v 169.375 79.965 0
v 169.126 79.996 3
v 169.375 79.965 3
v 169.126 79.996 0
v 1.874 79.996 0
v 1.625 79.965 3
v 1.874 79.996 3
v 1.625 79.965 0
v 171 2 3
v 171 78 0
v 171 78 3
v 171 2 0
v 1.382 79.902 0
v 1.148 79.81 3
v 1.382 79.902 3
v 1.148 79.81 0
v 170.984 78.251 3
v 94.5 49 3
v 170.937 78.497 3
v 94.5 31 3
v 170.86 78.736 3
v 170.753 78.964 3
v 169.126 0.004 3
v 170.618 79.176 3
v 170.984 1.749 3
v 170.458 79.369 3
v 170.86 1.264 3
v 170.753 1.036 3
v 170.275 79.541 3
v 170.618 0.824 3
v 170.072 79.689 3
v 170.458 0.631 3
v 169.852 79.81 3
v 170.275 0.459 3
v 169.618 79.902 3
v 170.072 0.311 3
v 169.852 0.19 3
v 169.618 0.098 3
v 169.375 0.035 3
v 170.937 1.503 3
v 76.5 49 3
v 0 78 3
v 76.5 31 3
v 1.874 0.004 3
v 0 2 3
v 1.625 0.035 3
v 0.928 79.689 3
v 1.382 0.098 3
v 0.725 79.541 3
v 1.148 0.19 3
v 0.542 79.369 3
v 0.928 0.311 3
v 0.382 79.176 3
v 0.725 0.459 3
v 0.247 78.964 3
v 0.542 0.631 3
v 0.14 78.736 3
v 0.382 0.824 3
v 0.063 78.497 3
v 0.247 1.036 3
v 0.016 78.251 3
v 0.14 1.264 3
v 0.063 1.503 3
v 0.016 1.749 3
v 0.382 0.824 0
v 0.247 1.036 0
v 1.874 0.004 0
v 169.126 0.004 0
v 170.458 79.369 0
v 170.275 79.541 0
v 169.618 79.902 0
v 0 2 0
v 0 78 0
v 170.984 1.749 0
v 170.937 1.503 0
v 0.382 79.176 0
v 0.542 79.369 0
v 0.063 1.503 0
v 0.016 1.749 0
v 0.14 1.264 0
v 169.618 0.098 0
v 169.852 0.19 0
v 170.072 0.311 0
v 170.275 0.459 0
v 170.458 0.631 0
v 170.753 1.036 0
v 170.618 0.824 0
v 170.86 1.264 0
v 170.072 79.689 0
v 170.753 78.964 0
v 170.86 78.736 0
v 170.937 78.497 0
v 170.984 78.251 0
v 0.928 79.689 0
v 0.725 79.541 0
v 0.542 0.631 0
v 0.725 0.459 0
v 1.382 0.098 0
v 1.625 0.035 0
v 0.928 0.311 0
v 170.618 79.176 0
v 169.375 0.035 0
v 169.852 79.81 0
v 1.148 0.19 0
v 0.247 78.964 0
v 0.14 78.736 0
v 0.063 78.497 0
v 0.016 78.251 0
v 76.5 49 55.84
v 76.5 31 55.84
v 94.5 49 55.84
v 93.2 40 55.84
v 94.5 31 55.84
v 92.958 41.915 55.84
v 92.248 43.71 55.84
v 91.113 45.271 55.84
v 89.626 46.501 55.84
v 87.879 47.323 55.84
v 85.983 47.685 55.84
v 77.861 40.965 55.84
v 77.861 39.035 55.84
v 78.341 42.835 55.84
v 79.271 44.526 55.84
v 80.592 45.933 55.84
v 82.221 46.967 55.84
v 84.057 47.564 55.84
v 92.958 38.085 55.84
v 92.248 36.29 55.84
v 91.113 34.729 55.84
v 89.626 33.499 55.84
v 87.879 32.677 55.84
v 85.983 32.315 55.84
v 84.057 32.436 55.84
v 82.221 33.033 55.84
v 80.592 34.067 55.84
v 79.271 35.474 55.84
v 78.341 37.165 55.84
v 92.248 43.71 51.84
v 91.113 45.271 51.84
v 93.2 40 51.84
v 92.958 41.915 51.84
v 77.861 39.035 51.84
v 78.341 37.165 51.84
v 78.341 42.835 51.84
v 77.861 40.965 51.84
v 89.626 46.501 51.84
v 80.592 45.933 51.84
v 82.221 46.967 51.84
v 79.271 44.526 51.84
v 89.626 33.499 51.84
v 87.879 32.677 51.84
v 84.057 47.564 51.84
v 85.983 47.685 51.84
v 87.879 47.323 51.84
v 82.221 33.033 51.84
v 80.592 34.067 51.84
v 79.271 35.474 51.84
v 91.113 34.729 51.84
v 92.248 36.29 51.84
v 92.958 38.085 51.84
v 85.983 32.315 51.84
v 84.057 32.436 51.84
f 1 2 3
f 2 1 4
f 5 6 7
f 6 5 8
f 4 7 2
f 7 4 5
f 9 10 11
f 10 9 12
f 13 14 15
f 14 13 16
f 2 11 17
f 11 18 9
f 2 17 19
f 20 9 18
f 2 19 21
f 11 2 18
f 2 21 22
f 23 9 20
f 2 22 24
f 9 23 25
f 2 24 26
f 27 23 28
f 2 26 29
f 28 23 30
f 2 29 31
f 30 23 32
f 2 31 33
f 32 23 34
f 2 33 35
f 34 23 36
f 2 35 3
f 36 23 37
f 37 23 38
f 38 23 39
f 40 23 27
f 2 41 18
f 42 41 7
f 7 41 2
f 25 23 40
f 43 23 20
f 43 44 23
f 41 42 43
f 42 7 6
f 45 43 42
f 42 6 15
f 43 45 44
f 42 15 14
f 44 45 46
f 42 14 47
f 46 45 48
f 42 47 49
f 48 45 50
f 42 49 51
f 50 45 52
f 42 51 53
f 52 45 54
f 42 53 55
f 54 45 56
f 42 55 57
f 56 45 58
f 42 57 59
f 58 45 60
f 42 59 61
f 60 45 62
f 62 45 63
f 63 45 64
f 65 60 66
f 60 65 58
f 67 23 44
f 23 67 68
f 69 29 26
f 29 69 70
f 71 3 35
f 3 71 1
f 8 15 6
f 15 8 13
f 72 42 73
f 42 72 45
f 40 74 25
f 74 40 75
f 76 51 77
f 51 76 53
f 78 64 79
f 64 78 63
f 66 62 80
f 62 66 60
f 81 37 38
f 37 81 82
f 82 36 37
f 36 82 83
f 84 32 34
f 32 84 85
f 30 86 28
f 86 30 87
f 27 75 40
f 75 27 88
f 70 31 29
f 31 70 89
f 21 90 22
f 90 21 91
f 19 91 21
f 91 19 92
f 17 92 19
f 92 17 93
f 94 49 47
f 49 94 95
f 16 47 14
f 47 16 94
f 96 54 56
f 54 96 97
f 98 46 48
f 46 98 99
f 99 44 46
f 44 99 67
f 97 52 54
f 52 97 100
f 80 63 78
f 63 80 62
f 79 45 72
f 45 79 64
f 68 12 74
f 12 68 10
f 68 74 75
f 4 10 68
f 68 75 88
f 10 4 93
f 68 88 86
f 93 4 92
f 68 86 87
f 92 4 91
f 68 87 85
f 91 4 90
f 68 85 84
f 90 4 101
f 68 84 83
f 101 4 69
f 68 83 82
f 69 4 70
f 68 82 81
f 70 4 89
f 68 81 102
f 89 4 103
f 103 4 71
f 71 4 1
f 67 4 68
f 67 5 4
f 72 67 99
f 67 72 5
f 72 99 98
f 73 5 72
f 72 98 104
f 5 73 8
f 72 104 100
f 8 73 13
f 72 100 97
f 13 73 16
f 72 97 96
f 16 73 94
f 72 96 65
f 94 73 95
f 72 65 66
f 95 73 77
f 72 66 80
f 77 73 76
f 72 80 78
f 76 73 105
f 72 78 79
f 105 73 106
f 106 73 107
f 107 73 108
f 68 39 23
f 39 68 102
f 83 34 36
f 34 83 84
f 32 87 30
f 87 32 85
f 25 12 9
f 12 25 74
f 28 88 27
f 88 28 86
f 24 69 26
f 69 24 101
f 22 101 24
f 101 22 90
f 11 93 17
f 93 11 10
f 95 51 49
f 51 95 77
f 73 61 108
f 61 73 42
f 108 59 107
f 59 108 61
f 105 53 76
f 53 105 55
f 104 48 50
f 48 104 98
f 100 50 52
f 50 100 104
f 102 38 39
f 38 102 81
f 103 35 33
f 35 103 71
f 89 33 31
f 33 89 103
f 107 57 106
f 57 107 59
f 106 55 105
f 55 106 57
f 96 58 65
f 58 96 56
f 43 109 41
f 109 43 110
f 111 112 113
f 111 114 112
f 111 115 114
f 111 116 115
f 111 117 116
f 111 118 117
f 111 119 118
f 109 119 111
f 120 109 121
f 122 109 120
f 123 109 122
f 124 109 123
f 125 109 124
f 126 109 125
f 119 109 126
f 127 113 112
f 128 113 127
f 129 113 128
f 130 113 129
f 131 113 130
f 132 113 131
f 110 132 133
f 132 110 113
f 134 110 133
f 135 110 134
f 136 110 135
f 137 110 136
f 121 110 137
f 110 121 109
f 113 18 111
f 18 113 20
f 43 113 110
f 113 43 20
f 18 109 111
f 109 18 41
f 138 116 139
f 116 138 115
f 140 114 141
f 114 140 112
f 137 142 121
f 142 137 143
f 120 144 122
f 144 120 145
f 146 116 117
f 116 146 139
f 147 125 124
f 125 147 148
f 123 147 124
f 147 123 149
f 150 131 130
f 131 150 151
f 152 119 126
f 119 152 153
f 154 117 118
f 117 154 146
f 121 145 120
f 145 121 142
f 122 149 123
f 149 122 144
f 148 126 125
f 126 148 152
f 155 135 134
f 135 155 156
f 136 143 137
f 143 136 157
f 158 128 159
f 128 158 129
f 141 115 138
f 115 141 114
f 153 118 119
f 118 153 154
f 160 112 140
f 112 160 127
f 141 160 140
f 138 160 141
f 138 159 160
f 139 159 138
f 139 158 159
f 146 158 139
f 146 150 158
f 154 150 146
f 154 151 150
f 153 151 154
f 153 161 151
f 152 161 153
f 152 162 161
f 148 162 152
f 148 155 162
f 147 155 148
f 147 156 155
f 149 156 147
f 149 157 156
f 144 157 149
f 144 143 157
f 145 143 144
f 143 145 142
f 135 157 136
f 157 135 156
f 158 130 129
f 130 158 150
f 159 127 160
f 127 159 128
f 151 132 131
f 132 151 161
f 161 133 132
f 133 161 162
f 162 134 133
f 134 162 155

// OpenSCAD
width = 80;
length = 171;
height = 3;
magnetHoleWidth = 19;
floorThickness = 3;

//Based on magnet size:
pillarHeight = height + (26.42 * 2);
pillarSideLength = 18;
magnetBaseInnerDiameter = 15.4;
magnetHeight = 4.0;

spaceBetweenCircles = 2;


difference() {
union(){
    $fn=50;
    minkowski()
    {
      translate([2,2,0])
        cube([length-4, width-4, height - 1]);
      cylinder(r=2,h=1);
    }
   
    translate([length/2 - ((pillarSideLength)/2), width/2 - ((pillarSideLength)/2), 0])
        cube([pillarSideLength, pillarSideLength, pillarHeight]);
        

}
    translate([length/2,  width/2, pillarHeight - magnetHeight])
        cylinder(magnetHeight, d=magnetBaseInnerDiameter);

}
